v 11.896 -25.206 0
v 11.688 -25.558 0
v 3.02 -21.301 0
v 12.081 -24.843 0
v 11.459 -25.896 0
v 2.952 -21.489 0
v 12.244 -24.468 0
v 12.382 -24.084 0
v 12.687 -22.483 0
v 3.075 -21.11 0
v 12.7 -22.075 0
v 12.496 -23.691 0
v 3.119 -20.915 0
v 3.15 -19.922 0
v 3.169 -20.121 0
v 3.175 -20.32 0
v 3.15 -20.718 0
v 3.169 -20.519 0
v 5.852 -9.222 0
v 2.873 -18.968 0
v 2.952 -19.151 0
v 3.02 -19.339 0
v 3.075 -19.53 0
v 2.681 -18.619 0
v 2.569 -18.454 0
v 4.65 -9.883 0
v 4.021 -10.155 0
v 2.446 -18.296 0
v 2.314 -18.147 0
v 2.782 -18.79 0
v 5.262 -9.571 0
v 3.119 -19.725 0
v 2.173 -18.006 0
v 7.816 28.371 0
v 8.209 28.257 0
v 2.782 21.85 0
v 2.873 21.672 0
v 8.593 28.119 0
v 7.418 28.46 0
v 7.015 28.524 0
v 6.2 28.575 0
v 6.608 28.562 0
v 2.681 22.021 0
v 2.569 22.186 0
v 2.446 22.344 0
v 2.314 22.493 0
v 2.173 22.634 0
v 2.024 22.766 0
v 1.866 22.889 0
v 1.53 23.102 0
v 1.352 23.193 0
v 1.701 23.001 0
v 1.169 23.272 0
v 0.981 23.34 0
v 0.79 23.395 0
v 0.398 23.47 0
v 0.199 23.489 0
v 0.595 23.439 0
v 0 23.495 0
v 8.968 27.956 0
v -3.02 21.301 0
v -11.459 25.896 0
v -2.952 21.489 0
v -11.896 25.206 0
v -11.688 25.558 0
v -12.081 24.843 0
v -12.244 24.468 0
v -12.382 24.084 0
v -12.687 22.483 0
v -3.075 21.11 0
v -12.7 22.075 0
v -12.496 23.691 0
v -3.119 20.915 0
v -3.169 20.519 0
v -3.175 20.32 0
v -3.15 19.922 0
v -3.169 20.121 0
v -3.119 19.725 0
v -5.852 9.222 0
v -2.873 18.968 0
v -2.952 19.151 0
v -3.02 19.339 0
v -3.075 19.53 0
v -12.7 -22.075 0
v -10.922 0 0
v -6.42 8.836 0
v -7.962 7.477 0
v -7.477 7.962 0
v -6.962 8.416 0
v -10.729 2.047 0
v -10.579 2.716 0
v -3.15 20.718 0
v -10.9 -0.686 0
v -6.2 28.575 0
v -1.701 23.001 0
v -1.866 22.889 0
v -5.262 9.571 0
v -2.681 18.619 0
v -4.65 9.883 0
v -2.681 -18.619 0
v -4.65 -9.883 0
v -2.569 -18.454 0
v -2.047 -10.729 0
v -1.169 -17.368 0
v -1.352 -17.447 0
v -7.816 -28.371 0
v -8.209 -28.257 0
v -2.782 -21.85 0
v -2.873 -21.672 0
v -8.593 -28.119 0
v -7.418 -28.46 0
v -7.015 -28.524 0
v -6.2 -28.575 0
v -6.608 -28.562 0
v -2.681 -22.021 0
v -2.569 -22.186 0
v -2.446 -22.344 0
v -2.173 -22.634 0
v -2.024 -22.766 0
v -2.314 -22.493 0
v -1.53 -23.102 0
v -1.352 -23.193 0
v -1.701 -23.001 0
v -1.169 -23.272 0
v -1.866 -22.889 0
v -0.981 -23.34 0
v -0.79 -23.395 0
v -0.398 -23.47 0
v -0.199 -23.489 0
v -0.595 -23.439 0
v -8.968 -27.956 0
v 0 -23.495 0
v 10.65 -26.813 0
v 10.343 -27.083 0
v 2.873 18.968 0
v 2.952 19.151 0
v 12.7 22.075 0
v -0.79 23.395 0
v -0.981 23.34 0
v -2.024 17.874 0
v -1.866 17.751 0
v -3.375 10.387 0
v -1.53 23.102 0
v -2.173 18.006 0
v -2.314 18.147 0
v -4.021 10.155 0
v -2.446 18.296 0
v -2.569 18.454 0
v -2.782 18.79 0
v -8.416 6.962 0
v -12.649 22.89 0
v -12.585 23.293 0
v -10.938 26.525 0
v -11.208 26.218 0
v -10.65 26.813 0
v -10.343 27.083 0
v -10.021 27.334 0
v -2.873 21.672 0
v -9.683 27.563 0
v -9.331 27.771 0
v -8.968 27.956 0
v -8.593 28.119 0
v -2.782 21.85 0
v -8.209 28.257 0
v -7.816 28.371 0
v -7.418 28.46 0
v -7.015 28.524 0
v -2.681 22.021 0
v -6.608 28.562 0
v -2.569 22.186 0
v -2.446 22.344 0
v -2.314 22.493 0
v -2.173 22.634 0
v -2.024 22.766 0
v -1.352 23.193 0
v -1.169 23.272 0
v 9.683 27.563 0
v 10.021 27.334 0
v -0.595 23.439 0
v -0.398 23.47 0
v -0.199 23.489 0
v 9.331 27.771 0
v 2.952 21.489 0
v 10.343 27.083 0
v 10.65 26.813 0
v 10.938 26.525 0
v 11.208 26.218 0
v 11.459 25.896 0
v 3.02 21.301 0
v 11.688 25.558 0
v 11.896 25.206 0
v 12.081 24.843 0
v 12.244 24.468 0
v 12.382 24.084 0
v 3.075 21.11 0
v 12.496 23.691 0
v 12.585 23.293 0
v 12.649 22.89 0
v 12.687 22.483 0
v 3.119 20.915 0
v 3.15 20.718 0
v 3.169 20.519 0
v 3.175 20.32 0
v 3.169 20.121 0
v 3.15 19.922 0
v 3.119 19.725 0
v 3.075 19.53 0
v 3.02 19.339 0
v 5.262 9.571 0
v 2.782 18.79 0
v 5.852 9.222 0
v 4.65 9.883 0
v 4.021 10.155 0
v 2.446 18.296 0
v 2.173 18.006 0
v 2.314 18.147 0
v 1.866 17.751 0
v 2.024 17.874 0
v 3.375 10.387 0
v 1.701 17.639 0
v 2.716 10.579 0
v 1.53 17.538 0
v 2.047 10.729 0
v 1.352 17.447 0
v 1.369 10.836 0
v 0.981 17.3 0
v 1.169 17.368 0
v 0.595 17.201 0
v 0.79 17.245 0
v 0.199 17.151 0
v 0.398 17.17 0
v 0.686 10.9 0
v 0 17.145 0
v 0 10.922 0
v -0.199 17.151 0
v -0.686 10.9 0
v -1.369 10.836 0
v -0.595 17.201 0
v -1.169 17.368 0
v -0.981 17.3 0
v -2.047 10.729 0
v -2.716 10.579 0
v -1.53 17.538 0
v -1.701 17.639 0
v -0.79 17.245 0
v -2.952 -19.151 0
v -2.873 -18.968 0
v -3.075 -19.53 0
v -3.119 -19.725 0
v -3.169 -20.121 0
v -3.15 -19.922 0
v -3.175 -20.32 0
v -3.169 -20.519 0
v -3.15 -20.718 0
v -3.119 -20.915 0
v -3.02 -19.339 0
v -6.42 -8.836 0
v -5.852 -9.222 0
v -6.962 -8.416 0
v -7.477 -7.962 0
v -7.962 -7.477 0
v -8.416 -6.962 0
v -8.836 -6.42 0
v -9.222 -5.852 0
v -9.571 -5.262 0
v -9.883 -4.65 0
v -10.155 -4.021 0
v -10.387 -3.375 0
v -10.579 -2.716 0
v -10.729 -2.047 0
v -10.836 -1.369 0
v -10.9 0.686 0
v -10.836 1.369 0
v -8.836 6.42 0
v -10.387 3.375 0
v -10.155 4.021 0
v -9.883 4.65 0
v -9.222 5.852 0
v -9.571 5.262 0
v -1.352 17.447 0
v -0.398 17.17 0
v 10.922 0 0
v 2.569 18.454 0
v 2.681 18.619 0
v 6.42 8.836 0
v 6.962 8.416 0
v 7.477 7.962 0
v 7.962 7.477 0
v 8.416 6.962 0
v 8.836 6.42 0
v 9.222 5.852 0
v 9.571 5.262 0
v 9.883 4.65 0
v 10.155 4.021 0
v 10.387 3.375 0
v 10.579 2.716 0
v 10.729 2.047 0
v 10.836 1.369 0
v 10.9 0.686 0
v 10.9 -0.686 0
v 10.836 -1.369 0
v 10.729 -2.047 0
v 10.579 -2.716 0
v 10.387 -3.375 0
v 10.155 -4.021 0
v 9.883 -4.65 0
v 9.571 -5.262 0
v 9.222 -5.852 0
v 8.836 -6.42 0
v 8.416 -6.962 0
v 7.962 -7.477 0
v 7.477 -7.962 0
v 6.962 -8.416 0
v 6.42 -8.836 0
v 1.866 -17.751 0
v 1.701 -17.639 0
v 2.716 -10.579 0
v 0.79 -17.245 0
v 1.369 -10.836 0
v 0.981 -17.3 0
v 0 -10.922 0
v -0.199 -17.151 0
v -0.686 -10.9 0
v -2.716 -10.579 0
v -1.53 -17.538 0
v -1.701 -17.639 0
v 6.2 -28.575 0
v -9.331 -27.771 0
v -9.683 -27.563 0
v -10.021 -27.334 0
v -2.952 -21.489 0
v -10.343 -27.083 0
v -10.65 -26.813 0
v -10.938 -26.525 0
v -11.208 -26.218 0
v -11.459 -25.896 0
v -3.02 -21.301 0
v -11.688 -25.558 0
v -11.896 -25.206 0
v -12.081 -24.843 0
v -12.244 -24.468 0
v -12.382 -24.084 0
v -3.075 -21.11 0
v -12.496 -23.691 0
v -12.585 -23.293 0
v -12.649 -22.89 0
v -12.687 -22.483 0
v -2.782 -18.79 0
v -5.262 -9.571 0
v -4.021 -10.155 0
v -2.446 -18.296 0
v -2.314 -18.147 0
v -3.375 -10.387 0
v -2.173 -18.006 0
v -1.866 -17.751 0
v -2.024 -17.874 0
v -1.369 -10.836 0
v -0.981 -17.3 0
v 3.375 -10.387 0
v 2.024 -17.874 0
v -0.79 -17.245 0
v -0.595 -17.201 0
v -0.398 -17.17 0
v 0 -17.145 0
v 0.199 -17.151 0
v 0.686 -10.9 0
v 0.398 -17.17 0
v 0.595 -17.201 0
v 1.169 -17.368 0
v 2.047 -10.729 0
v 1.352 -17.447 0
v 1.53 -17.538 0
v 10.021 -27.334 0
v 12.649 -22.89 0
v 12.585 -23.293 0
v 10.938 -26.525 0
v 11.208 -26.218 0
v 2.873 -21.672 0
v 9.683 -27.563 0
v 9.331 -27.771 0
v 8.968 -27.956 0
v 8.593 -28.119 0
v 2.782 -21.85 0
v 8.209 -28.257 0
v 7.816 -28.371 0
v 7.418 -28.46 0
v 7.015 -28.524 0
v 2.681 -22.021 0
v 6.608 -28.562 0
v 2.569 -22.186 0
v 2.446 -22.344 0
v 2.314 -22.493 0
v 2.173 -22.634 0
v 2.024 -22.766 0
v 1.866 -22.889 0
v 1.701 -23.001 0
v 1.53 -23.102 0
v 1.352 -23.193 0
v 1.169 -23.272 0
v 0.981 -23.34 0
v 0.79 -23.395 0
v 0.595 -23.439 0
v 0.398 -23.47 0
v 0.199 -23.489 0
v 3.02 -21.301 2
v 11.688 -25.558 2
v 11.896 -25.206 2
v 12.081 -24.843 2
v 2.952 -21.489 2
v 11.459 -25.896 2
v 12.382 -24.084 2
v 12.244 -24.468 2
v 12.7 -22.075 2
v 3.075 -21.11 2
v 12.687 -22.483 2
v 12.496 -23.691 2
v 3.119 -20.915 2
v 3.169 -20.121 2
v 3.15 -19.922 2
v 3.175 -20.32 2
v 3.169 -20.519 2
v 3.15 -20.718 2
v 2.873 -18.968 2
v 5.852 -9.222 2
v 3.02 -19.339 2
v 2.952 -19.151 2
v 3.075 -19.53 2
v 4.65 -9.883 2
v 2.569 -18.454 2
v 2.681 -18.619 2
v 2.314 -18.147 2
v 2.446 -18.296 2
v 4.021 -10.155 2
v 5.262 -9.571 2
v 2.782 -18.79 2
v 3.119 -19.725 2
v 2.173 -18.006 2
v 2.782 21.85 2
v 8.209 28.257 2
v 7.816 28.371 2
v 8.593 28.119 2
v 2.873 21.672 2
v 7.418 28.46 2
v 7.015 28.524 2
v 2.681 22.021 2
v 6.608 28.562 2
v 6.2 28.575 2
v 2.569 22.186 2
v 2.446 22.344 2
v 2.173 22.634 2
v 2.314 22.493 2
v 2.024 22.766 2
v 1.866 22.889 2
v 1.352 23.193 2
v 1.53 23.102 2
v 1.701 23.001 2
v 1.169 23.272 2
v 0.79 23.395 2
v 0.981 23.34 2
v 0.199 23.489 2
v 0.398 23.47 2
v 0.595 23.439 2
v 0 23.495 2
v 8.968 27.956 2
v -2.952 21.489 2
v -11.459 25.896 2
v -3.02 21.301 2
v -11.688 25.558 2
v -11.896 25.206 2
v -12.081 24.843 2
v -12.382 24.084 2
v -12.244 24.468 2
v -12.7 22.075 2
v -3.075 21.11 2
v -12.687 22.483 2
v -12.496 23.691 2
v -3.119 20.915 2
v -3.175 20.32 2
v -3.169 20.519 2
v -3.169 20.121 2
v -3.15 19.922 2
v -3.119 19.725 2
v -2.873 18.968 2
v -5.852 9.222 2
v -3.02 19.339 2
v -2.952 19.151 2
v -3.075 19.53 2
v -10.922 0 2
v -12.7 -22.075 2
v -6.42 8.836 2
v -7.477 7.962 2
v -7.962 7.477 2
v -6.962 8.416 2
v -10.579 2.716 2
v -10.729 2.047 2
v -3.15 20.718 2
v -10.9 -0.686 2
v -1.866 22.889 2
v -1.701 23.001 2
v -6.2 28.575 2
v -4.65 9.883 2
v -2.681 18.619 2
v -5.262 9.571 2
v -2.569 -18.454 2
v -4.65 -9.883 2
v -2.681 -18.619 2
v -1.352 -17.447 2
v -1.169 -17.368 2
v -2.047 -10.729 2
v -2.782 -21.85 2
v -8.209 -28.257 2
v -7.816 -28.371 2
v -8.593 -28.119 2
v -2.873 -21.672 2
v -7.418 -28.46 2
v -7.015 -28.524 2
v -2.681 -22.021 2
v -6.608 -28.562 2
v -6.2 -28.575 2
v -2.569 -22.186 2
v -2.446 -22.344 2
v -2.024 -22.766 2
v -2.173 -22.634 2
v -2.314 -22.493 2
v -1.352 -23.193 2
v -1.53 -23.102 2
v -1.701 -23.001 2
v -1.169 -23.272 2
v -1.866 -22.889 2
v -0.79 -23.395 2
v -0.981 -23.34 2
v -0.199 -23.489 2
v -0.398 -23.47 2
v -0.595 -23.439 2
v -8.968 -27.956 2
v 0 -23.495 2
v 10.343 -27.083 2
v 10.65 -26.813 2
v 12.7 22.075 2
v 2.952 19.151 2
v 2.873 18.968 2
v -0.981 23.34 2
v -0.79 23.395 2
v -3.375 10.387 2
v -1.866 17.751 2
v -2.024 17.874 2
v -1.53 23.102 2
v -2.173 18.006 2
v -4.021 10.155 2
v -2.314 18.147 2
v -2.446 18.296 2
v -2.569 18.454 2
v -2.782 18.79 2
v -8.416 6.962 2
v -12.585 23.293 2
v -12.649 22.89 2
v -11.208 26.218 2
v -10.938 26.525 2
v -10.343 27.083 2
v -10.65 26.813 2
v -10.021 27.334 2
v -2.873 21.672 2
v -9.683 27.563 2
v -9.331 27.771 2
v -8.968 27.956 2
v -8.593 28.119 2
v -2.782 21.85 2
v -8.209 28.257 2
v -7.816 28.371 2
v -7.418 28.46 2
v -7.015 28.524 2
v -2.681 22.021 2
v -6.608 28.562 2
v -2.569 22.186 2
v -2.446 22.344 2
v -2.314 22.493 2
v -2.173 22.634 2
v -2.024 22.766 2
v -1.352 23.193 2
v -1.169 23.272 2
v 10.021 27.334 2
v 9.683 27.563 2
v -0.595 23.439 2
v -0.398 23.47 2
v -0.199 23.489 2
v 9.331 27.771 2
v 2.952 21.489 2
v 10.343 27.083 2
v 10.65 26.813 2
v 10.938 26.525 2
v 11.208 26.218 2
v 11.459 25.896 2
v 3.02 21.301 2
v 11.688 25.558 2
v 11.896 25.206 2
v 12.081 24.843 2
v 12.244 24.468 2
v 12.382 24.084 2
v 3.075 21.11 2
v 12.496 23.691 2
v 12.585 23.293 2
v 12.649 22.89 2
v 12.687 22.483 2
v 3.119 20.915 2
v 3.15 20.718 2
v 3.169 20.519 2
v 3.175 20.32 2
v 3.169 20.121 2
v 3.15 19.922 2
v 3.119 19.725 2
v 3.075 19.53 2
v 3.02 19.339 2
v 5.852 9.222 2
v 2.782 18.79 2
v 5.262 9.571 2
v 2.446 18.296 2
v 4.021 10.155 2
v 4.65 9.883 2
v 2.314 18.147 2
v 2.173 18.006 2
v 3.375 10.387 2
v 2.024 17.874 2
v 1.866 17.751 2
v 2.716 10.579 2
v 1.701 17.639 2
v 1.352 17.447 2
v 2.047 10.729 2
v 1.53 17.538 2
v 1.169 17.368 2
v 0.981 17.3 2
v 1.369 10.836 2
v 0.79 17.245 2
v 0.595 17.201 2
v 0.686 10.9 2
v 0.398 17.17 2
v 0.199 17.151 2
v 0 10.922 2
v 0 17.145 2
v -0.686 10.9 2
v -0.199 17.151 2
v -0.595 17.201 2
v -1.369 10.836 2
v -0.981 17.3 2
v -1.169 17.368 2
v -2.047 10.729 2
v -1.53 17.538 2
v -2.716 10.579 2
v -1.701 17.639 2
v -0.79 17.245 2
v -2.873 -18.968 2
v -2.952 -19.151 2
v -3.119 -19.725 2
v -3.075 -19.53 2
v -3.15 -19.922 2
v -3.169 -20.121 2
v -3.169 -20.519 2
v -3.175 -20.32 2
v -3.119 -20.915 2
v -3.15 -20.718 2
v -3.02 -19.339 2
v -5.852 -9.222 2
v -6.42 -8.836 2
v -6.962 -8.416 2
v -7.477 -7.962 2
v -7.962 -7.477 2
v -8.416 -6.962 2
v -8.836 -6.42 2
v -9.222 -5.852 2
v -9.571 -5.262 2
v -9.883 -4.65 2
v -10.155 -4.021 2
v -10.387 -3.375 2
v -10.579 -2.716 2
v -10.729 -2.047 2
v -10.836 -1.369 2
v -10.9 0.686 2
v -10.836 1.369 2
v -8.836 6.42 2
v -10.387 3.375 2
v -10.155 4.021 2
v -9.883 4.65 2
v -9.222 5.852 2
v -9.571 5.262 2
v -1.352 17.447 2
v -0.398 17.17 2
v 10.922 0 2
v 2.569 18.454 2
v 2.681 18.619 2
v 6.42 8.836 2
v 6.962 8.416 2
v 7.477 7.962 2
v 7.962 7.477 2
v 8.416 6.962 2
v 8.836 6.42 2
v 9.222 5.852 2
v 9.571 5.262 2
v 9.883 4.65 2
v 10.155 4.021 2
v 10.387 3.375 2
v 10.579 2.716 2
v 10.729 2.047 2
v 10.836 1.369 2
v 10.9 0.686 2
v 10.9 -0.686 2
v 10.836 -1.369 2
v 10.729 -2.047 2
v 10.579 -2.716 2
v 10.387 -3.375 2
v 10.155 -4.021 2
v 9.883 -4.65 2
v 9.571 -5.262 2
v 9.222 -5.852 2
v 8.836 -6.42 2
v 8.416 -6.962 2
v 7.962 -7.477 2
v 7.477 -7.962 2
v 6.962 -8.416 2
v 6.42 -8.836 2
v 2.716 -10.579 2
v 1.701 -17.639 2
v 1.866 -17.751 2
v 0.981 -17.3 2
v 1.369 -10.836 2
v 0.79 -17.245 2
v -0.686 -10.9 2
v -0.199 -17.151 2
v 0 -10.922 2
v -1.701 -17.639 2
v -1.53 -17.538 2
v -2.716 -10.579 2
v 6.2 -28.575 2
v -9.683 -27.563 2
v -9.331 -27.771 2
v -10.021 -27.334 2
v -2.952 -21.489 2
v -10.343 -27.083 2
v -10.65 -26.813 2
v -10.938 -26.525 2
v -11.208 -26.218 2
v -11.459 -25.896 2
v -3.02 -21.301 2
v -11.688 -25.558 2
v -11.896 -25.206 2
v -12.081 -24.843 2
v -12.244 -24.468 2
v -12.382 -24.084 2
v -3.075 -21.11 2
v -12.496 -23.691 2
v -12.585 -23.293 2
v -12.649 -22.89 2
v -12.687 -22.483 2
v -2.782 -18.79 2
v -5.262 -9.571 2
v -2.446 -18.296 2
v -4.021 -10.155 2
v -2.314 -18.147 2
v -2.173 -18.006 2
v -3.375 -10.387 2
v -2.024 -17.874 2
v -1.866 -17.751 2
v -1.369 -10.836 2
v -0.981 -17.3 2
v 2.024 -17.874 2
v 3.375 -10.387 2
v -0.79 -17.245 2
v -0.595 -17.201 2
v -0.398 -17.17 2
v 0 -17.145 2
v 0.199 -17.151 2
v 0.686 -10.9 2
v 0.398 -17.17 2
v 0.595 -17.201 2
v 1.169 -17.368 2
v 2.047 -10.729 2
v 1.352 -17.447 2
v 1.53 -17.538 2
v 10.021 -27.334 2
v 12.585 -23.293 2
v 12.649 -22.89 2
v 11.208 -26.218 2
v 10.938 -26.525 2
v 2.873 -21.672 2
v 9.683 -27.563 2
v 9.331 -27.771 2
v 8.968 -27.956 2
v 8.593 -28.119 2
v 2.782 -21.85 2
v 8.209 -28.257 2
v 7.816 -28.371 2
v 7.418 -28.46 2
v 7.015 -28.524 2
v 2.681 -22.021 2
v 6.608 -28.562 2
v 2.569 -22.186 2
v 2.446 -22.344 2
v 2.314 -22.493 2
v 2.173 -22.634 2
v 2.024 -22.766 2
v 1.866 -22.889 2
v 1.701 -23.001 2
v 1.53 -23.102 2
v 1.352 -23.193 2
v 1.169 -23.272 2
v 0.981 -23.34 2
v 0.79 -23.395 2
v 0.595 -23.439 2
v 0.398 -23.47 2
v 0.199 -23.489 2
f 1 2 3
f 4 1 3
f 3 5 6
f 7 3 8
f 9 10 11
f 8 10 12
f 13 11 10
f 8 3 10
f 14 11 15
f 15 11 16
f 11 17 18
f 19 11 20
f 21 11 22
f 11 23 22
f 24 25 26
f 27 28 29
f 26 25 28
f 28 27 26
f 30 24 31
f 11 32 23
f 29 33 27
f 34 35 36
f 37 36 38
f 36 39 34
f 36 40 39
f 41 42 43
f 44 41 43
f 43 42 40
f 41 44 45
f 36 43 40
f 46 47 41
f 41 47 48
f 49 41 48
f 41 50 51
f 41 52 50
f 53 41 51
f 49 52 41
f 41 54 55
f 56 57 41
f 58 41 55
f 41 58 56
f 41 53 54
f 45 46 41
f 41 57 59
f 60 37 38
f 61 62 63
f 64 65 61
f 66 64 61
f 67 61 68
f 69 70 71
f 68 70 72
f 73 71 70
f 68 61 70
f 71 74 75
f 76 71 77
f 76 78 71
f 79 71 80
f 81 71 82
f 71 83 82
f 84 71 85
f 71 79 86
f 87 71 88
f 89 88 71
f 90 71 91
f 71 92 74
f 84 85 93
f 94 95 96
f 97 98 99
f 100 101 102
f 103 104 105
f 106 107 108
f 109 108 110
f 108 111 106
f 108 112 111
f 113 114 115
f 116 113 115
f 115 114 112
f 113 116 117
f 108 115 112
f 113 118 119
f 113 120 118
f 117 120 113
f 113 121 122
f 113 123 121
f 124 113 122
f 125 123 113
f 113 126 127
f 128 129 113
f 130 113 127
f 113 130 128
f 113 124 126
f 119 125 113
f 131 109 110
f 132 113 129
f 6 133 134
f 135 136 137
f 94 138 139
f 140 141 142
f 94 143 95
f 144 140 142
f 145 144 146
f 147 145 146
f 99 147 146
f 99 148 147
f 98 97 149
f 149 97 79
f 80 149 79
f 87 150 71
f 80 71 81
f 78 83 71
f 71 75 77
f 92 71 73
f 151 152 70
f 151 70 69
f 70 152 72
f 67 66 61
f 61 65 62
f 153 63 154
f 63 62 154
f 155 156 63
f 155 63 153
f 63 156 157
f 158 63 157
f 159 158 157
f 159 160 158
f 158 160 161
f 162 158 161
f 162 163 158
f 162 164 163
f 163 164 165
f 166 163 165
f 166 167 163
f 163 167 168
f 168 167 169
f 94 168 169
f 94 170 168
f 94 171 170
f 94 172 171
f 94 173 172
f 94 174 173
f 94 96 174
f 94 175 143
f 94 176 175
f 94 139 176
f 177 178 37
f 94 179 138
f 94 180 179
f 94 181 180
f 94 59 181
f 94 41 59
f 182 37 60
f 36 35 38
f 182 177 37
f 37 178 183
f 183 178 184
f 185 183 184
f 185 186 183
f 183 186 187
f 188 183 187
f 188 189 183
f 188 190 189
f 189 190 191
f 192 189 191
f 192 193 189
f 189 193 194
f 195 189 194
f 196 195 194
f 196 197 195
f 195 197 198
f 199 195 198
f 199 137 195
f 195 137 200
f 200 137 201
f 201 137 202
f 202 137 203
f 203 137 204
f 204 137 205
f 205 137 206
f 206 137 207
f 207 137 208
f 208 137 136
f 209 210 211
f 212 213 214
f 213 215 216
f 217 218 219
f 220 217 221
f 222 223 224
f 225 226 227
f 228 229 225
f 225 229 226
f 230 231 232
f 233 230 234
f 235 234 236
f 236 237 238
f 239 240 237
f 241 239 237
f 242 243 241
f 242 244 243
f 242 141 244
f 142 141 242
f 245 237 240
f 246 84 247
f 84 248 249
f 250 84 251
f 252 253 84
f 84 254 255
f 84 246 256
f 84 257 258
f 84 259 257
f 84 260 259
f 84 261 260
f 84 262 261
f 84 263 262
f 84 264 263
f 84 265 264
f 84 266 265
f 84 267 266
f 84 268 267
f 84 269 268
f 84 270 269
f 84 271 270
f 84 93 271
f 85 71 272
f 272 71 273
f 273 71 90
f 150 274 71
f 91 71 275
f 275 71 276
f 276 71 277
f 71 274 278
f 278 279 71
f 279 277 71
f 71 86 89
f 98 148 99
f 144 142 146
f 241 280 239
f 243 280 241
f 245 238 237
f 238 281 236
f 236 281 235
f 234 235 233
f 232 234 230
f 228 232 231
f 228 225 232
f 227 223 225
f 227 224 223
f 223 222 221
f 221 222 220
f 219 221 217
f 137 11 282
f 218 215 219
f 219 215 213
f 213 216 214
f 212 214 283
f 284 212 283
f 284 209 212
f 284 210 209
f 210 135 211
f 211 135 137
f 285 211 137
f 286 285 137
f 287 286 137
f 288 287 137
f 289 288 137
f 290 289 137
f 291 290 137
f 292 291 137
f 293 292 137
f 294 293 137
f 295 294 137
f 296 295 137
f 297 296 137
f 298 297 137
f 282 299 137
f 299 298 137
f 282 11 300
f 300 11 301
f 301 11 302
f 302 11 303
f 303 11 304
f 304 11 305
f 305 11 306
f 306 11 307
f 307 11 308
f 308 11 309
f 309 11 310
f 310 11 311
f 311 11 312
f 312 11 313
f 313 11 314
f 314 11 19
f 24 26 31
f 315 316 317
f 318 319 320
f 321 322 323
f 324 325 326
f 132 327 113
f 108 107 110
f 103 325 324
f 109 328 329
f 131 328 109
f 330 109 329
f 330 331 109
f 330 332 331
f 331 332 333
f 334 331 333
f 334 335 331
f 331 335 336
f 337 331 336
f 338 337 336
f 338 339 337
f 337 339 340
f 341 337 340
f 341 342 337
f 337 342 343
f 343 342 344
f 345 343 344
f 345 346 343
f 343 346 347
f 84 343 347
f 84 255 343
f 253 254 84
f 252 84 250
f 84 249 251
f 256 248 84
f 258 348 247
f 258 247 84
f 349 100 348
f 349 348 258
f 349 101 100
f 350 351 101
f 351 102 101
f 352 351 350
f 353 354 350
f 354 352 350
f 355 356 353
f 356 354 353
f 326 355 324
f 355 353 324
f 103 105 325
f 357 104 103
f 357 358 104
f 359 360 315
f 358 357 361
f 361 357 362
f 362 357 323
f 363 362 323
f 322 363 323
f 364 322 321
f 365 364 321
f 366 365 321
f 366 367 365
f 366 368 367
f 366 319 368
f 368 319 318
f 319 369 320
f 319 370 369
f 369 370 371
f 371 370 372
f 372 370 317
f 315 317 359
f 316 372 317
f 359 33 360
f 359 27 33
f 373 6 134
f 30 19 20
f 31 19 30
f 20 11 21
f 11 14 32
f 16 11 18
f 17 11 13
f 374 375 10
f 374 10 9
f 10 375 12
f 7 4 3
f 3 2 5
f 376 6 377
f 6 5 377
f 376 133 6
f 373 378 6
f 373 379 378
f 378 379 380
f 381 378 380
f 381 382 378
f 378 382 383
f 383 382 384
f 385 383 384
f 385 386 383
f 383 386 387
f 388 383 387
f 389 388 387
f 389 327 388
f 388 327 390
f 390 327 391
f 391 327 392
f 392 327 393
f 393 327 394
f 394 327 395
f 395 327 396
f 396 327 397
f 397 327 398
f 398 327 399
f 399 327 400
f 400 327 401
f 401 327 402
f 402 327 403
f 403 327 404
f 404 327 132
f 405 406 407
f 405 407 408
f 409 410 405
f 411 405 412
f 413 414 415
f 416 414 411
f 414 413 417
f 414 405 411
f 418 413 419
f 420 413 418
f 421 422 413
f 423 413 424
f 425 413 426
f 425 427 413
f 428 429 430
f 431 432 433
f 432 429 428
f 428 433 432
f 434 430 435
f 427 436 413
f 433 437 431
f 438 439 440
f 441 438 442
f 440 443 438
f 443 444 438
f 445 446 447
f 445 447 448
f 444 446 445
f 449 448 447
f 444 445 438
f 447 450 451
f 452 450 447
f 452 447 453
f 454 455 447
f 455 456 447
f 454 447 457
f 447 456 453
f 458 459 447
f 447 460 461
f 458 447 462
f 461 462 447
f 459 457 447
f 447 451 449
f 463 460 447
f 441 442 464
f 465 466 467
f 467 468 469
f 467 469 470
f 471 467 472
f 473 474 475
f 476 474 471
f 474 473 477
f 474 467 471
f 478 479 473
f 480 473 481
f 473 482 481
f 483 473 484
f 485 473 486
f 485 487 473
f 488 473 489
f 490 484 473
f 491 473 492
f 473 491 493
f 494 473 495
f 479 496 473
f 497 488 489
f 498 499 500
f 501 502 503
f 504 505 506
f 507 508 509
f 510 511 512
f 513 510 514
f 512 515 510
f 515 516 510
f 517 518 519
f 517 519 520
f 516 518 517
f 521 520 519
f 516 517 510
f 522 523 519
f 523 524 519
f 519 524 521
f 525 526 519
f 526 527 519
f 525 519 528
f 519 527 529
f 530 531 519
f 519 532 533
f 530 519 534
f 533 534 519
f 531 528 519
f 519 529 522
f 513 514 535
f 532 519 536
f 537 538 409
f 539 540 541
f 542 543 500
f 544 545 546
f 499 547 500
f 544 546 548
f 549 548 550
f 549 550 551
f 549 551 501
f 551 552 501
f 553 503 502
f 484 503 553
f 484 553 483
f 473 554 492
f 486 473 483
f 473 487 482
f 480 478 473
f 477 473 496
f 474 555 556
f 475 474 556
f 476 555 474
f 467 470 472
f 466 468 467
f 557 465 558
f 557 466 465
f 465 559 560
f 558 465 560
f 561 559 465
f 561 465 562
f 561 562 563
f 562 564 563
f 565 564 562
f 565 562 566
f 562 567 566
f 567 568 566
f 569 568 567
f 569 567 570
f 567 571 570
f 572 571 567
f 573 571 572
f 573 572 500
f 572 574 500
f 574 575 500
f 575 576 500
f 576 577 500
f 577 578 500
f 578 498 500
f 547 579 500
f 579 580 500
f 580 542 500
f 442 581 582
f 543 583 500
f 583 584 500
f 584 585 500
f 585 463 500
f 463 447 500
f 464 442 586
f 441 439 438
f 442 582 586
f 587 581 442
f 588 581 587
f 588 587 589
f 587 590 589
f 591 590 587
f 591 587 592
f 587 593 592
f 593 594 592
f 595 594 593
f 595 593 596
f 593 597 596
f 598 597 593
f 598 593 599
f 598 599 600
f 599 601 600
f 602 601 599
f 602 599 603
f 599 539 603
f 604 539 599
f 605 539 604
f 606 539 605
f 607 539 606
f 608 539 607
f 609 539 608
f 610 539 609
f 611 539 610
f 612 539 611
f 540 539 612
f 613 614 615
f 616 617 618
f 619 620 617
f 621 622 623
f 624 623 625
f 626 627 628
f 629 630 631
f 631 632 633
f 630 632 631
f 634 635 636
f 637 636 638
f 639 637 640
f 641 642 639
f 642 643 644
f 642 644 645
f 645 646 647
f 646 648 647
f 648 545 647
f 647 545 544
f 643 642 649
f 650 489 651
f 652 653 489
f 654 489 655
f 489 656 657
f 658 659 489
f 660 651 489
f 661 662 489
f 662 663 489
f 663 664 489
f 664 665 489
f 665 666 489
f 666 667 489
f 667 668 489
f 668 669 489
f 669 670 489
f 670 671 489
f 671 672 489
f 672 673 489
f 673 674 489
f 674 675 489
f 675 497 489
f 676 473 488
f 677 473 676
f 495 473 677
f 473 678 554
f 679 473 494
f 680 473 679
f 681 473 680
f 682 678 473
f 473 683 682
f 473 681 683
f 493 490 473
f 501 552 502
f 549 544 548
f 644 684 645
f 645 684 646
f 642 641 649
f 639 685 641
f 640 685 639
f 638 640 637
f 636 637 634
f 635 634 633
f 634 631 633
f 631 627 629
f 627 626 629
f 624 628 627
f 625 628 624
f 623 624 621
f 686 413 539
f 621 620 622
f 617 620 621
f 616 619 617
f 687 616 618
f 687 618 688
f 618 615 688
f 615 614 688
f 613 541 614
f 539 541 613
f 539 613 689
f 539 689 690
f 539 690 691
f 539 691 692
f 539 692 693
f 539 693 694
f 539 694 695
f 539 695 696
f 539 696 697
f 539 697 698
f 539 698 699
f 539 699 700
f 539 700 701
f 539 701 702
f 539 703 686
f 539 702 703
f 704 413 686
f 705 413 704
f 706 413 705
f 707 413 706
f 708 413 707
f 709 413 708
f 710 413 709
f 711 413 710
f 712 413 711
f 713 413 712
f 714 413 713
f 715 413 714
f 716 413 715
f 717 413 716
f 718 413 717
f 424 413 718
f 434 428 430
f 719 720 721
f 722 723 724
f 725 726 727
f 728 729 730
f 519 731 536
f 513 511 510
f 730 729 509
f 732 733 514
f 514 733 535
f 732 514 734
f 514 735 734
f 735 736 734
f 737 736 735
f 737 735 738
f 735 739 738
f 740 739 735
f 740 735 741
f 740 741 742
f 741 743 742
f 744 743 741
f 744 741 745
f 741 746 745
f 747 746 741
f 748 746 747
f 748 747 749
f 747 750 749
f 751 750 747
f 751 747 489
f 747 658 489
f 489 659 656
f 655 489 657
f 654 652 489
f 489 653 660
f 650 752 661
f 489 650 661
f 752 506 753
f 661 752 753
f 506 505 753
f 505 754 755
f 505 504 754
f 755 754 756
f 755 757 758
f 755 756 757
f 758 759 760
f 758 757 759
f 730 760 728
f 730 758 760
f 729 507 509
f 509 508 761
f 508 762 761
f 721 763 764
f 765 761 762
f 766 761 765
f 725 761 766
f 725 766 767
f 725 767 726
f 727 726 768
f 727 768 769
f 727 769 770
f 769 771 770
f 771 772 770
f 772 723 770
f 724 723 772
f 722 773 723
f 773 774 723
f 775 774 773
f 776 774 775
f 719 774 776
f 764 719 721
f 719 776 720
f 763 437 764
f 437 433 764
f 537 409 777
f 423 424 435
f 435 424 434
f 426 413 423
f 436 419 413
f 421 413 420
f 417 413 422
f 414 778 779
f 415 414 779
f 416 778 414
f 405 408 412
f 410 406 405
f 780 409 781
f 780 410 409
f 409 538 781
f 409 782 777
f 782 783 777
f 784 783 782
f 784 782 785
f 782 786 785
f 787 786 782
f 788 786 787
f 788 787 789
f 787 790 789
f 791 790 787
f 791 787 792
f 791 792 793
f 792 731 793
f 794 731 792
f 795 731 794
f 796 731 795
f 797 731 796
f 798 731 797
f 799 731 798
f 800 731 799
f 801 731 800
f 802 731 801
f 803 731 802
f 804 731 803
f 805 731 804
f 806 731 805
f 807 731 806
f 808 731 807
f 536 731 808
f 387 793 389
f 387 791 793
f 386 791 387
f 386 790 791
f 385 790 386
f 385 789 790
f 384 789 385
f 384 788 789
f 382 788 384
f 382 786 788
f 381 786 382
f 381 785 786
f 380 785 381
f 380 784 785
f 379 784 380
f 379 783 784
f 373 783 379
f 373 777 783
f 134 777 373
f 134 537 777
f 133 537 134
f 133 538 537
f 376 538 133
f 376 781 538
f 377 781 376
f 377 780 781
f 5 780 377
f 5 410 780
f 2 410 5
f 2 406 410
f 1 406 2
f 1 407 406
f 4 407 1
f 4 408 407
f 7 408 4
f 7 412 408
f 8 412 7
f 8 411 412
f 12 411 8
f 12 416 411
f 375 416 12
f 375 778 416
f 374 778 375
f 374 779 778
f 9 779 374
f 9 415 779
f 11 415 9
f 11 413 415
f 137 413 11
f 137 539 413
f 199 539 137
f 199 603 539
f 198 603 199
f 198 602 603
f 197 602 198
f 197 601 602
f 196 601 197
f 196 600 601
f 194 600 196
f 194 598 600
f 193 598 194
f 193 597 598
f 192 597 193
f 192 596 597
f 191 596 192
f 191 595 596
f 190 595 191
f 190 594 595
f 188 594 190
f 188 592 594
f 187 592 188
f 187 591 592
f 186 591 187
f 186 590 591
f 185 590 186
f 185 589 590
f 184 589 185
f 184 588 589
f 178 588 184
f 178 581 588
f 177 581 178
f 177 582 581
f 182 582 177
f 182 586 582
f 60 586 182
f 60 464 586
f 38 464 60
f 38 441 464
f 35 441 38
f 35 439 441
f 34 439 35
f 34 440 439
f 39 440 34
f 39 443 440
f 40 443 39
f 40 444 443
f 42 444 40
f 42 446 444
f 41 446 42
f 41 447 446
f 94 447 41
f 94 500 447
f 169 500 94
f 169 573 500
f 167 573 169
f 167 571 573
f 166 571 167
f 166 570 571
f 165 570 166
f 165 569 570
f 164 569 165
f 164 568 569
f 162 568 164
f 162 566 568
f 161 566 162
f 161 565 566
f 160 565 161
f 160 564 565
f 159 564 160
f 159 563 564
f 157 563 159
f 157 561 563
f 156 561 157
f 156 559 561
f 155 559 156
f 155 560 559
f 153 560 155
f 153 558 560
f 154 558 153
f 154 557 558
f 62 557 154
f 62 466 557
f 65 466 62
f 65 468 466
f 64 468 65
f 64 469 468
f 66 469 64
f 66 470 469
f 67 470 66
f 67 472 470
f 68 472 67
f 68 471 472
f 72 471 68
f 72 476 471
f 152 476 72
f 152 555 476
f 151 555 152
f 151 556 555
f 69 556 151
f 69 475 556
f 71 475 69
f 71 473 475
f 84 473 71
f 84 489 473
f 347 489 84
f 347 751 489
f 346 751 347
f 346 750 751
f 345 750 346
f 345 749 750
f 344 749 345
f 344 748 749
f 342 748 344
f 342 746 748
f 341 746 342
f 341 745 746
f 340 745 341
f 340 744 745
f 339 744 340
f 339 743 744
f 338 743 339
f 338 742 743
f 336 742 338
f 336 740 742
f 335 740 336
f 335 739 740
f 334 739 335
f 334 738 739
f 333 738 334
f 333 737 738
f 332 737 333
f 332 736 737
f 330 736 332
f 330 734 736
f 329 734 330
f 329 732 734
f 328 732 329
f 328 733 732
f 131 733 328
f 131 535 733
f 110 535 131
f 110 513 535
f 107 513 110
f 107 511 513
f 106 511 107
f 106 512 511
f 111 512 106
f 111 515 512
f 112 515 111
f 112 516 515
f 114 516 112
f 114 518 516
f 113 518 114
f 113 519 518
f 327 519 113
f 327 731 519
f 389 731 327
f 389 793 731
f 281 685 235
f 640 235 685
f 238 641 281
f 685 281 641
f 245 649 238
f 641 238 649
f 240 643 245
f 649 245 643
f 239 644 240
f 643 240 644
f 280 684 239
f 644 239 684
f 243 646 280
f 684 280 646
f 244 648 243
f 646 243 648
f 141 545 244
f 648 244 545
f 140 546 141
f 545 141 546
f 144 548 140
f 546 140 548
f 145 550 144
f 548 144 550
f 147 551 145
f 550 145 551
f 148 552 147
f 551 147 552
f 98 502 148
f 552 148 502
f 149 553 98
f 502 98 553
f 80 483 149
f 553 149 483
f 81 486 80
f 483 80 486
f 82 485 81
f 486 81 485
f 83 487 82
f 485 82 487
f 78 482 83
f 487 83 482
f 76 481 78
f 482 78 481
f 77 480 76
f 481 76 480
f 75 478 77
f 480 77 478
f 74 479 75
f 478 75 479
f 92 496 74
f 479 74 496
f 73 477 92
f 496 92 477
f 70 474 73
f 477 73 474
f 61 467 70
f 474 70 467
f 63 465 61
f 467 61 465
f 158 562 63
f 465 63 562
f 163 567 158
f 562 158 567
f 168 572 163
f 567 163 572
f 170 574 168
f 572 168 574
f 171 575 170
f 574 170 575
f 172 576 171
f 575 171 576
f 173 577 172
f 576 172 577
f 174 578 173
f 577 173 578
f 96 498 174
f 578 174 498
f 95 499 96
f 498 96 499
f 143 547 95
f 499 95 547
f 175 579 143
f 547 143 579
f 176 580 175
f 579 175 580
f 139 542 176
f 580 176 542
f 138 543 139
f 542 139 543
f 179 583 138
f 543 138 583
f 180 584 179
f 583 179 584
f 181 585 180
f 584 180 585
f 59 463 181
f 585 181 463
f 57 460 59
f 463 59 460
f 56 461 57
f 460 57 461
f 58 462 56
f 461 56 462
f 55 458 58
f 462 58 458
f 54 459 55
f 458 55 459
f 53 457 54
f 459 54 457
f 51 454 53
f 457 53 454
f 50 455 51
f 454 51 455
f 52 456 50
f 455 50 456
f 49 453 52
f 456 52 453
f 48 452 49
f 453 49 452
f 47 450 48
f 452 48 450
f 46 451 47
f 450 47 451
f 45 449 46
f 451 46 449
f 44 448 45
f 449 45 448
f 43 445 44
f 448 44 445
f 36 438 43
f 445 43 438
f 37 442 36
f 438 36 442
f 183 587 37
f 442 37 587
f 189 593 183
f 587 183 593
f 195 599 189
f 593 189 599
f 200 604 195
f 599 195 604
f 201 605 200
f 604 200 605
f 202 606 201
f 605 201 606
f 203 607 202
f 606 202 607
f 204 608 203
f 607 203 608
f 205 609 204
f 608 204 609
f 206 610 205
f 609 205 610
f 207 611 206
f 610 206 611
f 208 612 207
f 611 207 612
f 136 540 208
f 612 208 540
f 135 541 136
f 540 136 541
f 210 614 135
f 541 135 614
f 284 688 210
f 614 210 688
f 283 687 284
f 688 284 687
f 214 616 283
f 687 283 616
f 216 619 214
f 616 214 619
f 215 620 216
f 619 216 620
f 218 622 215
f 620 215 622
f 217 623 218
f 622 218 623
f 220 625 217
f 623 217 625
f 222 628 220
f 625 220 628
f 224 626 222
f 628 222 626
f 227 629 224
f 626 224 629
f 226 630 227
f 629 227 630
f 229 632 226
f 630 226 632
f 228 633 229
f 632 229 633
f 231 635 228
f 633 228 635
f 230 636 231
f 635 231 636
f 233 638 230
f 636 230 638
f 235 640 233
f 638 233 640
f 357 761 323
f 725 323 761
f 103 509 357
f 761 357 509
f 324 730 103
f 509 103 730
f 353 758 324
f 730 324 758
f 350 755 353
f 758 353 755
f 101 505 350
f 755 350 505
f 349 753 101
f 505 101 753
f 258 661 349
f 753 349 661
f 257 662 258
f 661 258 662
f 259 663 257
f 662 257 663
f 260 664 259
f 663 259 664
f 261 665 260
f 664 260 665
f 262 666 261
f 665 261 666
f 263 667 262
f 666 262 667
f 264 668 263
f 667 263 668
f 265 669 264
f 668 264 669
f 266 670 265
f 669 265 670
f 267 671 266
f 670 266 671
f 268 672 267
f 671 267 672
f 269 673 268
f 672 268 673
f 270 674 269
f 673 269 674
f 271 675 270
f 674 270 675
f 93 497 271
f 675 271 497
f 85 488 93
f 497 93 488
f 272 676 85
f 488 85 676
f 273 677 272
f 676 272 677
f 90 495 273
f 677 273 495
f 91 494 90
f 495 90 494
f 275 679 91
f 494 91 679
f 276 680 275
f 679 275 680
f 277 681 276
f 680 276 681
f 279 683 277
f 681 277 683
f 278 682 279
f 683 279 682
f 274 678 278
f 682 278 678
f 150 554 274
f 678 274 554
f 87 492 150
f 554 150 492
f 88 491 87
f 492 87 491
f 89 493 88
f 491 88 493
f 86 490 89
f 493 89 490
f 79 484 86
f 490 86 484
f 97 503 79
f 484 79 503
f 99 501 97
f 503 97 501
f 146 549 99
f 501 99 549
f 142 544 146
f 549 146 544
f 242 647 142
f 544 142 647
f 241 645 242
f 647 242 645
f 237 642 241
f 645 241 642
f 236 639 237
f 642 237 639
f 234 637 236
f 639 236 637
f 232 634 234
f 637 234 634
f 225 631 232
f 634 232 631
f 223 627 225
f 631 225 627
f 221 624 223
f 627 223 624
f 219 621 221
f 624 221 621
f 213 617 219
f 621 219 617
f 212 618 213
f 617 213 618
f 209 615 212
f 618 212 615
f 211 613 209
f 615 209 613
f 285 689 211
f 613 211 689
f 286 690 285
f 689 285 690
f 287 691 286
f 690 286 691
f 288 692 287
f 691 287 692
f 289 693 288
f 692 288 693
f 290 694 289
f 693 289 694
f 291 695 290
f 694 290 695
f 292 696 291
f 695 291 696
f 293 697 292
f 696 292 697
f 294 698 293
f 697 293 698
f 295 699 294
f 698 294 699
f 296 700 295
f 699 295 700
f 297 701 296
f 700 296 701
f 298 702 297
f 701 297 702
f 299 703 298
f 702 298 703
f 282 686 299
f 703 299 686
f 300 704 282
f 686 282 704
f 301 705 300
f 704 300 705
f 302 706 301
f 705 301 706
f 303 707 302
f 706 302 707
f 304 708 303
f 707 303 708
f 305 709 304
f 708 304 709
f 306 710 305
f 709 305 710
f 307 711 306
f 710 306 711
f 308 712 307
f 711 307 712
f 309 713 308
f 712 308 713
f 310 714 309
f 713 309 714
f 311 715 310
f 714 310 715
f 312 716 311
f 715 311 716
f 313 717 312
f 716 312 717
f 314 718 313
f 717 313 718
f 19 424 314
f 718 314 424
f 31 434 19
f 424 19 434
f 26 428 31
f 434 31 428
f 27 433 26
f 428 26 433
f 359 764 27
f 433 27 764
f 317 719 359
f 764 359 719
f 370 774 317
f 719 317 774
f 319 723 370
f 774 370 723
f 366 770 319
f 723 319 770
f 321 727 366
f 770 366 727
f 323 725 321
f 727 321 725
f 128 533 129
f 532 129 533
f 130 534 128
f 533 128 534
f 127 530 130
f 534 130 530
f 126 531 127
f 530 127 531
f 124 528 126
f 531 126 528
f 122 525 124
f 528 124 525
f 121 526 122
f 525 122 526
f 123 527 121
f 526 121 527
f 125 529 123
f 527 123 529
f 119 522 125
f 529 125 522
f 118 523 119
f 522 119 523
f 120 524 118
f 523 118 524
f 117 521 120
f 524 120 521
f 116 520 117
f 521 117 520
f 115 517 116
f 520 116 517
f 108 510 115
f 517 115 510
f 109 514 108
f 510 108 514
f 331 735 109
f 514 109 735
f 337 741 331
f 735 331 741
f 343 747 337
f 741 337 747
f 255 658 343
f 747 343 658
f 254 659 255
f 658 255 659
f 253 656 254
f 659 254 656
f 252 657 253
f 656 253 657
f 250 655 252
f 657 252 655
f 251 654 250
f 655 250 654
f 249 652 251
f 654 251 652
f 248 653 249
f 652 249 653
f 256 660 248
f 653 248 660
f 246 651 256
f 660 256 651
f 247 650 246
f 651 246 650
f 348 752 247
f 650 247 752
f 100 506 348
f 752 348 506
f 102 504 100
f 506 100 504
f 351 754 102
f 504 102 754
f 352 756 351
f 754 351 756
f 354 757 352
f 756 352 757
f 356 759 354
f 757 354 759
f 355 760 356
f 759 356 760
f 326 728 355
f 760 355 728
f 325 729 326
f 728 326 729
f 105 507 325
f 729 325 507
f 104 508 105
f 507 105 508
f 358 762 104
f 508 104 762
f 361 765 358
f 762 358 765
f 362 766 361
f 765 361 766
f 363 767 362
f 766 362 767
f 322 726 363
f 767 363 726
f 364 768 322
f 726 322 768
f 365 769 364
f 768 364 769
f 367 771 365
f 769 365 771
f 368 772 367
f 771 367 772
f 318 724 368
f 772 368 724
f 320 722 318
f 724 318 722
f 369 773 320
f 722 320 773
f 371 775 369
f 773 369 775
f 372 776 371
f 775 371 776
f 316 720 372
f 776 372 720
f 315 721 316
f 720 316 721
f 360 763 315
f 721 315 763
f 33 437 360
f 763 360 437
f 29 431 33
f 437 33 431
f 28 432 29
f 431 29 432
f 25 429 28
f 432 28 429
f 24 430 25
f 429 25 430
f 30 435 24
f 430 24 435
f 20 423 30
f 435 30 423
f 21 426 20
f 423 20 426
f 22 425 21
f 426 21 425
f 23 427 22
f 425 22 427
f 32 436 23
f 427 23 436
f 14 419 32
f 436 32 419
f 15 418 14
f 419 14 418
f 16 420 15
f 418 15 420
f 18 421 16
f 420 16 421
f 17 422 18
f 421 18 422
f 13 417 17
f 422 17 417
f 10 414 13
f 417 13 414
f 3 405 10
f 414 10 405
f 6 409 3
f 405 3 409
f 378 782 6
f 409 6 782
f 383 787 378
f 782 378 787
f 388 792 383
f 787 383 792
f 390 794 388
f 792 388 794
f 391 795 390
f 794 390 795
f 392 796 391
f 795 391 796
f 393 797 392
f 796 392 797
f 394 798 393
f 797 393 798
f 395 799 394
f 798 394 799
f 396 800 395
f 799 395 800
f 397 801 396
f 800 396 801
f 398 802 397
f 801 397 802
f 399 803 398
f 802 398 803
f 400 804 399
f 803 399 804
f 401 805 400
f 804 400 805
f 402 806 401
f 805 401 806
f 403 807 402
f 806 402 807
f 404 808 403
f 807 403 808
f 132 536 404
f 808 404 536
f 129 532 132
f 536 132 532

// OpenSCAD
/********************************************************
 * Door Latch Spacer - vsergeev
 * https://github.com/vsergeev/3d-door-latch-spacer
 * CC-BY-4.0
 *
 * Release Notes
 *  * v1.0 - 06/20/2023
 *      * Initial release.
 ********************************************************/

/* [Basic] */

// in mm
spacer_z_thickness = 2;

/* [Advanced] */

// in mm (1 * 25.4)
spacer_x_width = 25.4;

// in mm (2.25 * 25.4)
spacer_y_height = 57.15;

// in mm
spacer_xy_radius = 6.5;

// in mm (1.6 * 25.4)
spacer_screw_y_spacing = 40.64;

// in mm (0.25 * 25.4)
spacer_screw_xy_diameter = 6.35;

// in mm (1.075 * 0.8 * 25.4)
spacer_latch_xy_diameter = 21.844;

/* [Hidden] */

$fn = 100;

/******************************************************************************/
/* 2D Profiles */
/******************************************************************************/

module profile_spacer() {
    difference() {
        /* Spacer Body */
        offset(r=spacer_xy_radius)
            offset(delta=-spacer_xy_radius)
                square([spacer_x_width, spacer_y_height], center=true);

        /* Screw Holes */
        translate([0, spacer_screw_y_spacing / 2])
            circle(d=spacer_screw_xy_diameter);
        translate([0, -spacer_screw_y_spacing / 2])
            circle(d=spacer_screw_xy_diameter);

        /* Latch Opening */
        circle(d=spacer_latch_xy_diameter);
    }
}

/******************************************************************************/
/* 3D Extrusions */
/******************************************************************************/

module spacer() {
    linear_extrude(spacer_z_thickness)
        profile_spacer();
}

/******************************************************************************/
/* Top Level */
/******************************************************************************/

spacer();
